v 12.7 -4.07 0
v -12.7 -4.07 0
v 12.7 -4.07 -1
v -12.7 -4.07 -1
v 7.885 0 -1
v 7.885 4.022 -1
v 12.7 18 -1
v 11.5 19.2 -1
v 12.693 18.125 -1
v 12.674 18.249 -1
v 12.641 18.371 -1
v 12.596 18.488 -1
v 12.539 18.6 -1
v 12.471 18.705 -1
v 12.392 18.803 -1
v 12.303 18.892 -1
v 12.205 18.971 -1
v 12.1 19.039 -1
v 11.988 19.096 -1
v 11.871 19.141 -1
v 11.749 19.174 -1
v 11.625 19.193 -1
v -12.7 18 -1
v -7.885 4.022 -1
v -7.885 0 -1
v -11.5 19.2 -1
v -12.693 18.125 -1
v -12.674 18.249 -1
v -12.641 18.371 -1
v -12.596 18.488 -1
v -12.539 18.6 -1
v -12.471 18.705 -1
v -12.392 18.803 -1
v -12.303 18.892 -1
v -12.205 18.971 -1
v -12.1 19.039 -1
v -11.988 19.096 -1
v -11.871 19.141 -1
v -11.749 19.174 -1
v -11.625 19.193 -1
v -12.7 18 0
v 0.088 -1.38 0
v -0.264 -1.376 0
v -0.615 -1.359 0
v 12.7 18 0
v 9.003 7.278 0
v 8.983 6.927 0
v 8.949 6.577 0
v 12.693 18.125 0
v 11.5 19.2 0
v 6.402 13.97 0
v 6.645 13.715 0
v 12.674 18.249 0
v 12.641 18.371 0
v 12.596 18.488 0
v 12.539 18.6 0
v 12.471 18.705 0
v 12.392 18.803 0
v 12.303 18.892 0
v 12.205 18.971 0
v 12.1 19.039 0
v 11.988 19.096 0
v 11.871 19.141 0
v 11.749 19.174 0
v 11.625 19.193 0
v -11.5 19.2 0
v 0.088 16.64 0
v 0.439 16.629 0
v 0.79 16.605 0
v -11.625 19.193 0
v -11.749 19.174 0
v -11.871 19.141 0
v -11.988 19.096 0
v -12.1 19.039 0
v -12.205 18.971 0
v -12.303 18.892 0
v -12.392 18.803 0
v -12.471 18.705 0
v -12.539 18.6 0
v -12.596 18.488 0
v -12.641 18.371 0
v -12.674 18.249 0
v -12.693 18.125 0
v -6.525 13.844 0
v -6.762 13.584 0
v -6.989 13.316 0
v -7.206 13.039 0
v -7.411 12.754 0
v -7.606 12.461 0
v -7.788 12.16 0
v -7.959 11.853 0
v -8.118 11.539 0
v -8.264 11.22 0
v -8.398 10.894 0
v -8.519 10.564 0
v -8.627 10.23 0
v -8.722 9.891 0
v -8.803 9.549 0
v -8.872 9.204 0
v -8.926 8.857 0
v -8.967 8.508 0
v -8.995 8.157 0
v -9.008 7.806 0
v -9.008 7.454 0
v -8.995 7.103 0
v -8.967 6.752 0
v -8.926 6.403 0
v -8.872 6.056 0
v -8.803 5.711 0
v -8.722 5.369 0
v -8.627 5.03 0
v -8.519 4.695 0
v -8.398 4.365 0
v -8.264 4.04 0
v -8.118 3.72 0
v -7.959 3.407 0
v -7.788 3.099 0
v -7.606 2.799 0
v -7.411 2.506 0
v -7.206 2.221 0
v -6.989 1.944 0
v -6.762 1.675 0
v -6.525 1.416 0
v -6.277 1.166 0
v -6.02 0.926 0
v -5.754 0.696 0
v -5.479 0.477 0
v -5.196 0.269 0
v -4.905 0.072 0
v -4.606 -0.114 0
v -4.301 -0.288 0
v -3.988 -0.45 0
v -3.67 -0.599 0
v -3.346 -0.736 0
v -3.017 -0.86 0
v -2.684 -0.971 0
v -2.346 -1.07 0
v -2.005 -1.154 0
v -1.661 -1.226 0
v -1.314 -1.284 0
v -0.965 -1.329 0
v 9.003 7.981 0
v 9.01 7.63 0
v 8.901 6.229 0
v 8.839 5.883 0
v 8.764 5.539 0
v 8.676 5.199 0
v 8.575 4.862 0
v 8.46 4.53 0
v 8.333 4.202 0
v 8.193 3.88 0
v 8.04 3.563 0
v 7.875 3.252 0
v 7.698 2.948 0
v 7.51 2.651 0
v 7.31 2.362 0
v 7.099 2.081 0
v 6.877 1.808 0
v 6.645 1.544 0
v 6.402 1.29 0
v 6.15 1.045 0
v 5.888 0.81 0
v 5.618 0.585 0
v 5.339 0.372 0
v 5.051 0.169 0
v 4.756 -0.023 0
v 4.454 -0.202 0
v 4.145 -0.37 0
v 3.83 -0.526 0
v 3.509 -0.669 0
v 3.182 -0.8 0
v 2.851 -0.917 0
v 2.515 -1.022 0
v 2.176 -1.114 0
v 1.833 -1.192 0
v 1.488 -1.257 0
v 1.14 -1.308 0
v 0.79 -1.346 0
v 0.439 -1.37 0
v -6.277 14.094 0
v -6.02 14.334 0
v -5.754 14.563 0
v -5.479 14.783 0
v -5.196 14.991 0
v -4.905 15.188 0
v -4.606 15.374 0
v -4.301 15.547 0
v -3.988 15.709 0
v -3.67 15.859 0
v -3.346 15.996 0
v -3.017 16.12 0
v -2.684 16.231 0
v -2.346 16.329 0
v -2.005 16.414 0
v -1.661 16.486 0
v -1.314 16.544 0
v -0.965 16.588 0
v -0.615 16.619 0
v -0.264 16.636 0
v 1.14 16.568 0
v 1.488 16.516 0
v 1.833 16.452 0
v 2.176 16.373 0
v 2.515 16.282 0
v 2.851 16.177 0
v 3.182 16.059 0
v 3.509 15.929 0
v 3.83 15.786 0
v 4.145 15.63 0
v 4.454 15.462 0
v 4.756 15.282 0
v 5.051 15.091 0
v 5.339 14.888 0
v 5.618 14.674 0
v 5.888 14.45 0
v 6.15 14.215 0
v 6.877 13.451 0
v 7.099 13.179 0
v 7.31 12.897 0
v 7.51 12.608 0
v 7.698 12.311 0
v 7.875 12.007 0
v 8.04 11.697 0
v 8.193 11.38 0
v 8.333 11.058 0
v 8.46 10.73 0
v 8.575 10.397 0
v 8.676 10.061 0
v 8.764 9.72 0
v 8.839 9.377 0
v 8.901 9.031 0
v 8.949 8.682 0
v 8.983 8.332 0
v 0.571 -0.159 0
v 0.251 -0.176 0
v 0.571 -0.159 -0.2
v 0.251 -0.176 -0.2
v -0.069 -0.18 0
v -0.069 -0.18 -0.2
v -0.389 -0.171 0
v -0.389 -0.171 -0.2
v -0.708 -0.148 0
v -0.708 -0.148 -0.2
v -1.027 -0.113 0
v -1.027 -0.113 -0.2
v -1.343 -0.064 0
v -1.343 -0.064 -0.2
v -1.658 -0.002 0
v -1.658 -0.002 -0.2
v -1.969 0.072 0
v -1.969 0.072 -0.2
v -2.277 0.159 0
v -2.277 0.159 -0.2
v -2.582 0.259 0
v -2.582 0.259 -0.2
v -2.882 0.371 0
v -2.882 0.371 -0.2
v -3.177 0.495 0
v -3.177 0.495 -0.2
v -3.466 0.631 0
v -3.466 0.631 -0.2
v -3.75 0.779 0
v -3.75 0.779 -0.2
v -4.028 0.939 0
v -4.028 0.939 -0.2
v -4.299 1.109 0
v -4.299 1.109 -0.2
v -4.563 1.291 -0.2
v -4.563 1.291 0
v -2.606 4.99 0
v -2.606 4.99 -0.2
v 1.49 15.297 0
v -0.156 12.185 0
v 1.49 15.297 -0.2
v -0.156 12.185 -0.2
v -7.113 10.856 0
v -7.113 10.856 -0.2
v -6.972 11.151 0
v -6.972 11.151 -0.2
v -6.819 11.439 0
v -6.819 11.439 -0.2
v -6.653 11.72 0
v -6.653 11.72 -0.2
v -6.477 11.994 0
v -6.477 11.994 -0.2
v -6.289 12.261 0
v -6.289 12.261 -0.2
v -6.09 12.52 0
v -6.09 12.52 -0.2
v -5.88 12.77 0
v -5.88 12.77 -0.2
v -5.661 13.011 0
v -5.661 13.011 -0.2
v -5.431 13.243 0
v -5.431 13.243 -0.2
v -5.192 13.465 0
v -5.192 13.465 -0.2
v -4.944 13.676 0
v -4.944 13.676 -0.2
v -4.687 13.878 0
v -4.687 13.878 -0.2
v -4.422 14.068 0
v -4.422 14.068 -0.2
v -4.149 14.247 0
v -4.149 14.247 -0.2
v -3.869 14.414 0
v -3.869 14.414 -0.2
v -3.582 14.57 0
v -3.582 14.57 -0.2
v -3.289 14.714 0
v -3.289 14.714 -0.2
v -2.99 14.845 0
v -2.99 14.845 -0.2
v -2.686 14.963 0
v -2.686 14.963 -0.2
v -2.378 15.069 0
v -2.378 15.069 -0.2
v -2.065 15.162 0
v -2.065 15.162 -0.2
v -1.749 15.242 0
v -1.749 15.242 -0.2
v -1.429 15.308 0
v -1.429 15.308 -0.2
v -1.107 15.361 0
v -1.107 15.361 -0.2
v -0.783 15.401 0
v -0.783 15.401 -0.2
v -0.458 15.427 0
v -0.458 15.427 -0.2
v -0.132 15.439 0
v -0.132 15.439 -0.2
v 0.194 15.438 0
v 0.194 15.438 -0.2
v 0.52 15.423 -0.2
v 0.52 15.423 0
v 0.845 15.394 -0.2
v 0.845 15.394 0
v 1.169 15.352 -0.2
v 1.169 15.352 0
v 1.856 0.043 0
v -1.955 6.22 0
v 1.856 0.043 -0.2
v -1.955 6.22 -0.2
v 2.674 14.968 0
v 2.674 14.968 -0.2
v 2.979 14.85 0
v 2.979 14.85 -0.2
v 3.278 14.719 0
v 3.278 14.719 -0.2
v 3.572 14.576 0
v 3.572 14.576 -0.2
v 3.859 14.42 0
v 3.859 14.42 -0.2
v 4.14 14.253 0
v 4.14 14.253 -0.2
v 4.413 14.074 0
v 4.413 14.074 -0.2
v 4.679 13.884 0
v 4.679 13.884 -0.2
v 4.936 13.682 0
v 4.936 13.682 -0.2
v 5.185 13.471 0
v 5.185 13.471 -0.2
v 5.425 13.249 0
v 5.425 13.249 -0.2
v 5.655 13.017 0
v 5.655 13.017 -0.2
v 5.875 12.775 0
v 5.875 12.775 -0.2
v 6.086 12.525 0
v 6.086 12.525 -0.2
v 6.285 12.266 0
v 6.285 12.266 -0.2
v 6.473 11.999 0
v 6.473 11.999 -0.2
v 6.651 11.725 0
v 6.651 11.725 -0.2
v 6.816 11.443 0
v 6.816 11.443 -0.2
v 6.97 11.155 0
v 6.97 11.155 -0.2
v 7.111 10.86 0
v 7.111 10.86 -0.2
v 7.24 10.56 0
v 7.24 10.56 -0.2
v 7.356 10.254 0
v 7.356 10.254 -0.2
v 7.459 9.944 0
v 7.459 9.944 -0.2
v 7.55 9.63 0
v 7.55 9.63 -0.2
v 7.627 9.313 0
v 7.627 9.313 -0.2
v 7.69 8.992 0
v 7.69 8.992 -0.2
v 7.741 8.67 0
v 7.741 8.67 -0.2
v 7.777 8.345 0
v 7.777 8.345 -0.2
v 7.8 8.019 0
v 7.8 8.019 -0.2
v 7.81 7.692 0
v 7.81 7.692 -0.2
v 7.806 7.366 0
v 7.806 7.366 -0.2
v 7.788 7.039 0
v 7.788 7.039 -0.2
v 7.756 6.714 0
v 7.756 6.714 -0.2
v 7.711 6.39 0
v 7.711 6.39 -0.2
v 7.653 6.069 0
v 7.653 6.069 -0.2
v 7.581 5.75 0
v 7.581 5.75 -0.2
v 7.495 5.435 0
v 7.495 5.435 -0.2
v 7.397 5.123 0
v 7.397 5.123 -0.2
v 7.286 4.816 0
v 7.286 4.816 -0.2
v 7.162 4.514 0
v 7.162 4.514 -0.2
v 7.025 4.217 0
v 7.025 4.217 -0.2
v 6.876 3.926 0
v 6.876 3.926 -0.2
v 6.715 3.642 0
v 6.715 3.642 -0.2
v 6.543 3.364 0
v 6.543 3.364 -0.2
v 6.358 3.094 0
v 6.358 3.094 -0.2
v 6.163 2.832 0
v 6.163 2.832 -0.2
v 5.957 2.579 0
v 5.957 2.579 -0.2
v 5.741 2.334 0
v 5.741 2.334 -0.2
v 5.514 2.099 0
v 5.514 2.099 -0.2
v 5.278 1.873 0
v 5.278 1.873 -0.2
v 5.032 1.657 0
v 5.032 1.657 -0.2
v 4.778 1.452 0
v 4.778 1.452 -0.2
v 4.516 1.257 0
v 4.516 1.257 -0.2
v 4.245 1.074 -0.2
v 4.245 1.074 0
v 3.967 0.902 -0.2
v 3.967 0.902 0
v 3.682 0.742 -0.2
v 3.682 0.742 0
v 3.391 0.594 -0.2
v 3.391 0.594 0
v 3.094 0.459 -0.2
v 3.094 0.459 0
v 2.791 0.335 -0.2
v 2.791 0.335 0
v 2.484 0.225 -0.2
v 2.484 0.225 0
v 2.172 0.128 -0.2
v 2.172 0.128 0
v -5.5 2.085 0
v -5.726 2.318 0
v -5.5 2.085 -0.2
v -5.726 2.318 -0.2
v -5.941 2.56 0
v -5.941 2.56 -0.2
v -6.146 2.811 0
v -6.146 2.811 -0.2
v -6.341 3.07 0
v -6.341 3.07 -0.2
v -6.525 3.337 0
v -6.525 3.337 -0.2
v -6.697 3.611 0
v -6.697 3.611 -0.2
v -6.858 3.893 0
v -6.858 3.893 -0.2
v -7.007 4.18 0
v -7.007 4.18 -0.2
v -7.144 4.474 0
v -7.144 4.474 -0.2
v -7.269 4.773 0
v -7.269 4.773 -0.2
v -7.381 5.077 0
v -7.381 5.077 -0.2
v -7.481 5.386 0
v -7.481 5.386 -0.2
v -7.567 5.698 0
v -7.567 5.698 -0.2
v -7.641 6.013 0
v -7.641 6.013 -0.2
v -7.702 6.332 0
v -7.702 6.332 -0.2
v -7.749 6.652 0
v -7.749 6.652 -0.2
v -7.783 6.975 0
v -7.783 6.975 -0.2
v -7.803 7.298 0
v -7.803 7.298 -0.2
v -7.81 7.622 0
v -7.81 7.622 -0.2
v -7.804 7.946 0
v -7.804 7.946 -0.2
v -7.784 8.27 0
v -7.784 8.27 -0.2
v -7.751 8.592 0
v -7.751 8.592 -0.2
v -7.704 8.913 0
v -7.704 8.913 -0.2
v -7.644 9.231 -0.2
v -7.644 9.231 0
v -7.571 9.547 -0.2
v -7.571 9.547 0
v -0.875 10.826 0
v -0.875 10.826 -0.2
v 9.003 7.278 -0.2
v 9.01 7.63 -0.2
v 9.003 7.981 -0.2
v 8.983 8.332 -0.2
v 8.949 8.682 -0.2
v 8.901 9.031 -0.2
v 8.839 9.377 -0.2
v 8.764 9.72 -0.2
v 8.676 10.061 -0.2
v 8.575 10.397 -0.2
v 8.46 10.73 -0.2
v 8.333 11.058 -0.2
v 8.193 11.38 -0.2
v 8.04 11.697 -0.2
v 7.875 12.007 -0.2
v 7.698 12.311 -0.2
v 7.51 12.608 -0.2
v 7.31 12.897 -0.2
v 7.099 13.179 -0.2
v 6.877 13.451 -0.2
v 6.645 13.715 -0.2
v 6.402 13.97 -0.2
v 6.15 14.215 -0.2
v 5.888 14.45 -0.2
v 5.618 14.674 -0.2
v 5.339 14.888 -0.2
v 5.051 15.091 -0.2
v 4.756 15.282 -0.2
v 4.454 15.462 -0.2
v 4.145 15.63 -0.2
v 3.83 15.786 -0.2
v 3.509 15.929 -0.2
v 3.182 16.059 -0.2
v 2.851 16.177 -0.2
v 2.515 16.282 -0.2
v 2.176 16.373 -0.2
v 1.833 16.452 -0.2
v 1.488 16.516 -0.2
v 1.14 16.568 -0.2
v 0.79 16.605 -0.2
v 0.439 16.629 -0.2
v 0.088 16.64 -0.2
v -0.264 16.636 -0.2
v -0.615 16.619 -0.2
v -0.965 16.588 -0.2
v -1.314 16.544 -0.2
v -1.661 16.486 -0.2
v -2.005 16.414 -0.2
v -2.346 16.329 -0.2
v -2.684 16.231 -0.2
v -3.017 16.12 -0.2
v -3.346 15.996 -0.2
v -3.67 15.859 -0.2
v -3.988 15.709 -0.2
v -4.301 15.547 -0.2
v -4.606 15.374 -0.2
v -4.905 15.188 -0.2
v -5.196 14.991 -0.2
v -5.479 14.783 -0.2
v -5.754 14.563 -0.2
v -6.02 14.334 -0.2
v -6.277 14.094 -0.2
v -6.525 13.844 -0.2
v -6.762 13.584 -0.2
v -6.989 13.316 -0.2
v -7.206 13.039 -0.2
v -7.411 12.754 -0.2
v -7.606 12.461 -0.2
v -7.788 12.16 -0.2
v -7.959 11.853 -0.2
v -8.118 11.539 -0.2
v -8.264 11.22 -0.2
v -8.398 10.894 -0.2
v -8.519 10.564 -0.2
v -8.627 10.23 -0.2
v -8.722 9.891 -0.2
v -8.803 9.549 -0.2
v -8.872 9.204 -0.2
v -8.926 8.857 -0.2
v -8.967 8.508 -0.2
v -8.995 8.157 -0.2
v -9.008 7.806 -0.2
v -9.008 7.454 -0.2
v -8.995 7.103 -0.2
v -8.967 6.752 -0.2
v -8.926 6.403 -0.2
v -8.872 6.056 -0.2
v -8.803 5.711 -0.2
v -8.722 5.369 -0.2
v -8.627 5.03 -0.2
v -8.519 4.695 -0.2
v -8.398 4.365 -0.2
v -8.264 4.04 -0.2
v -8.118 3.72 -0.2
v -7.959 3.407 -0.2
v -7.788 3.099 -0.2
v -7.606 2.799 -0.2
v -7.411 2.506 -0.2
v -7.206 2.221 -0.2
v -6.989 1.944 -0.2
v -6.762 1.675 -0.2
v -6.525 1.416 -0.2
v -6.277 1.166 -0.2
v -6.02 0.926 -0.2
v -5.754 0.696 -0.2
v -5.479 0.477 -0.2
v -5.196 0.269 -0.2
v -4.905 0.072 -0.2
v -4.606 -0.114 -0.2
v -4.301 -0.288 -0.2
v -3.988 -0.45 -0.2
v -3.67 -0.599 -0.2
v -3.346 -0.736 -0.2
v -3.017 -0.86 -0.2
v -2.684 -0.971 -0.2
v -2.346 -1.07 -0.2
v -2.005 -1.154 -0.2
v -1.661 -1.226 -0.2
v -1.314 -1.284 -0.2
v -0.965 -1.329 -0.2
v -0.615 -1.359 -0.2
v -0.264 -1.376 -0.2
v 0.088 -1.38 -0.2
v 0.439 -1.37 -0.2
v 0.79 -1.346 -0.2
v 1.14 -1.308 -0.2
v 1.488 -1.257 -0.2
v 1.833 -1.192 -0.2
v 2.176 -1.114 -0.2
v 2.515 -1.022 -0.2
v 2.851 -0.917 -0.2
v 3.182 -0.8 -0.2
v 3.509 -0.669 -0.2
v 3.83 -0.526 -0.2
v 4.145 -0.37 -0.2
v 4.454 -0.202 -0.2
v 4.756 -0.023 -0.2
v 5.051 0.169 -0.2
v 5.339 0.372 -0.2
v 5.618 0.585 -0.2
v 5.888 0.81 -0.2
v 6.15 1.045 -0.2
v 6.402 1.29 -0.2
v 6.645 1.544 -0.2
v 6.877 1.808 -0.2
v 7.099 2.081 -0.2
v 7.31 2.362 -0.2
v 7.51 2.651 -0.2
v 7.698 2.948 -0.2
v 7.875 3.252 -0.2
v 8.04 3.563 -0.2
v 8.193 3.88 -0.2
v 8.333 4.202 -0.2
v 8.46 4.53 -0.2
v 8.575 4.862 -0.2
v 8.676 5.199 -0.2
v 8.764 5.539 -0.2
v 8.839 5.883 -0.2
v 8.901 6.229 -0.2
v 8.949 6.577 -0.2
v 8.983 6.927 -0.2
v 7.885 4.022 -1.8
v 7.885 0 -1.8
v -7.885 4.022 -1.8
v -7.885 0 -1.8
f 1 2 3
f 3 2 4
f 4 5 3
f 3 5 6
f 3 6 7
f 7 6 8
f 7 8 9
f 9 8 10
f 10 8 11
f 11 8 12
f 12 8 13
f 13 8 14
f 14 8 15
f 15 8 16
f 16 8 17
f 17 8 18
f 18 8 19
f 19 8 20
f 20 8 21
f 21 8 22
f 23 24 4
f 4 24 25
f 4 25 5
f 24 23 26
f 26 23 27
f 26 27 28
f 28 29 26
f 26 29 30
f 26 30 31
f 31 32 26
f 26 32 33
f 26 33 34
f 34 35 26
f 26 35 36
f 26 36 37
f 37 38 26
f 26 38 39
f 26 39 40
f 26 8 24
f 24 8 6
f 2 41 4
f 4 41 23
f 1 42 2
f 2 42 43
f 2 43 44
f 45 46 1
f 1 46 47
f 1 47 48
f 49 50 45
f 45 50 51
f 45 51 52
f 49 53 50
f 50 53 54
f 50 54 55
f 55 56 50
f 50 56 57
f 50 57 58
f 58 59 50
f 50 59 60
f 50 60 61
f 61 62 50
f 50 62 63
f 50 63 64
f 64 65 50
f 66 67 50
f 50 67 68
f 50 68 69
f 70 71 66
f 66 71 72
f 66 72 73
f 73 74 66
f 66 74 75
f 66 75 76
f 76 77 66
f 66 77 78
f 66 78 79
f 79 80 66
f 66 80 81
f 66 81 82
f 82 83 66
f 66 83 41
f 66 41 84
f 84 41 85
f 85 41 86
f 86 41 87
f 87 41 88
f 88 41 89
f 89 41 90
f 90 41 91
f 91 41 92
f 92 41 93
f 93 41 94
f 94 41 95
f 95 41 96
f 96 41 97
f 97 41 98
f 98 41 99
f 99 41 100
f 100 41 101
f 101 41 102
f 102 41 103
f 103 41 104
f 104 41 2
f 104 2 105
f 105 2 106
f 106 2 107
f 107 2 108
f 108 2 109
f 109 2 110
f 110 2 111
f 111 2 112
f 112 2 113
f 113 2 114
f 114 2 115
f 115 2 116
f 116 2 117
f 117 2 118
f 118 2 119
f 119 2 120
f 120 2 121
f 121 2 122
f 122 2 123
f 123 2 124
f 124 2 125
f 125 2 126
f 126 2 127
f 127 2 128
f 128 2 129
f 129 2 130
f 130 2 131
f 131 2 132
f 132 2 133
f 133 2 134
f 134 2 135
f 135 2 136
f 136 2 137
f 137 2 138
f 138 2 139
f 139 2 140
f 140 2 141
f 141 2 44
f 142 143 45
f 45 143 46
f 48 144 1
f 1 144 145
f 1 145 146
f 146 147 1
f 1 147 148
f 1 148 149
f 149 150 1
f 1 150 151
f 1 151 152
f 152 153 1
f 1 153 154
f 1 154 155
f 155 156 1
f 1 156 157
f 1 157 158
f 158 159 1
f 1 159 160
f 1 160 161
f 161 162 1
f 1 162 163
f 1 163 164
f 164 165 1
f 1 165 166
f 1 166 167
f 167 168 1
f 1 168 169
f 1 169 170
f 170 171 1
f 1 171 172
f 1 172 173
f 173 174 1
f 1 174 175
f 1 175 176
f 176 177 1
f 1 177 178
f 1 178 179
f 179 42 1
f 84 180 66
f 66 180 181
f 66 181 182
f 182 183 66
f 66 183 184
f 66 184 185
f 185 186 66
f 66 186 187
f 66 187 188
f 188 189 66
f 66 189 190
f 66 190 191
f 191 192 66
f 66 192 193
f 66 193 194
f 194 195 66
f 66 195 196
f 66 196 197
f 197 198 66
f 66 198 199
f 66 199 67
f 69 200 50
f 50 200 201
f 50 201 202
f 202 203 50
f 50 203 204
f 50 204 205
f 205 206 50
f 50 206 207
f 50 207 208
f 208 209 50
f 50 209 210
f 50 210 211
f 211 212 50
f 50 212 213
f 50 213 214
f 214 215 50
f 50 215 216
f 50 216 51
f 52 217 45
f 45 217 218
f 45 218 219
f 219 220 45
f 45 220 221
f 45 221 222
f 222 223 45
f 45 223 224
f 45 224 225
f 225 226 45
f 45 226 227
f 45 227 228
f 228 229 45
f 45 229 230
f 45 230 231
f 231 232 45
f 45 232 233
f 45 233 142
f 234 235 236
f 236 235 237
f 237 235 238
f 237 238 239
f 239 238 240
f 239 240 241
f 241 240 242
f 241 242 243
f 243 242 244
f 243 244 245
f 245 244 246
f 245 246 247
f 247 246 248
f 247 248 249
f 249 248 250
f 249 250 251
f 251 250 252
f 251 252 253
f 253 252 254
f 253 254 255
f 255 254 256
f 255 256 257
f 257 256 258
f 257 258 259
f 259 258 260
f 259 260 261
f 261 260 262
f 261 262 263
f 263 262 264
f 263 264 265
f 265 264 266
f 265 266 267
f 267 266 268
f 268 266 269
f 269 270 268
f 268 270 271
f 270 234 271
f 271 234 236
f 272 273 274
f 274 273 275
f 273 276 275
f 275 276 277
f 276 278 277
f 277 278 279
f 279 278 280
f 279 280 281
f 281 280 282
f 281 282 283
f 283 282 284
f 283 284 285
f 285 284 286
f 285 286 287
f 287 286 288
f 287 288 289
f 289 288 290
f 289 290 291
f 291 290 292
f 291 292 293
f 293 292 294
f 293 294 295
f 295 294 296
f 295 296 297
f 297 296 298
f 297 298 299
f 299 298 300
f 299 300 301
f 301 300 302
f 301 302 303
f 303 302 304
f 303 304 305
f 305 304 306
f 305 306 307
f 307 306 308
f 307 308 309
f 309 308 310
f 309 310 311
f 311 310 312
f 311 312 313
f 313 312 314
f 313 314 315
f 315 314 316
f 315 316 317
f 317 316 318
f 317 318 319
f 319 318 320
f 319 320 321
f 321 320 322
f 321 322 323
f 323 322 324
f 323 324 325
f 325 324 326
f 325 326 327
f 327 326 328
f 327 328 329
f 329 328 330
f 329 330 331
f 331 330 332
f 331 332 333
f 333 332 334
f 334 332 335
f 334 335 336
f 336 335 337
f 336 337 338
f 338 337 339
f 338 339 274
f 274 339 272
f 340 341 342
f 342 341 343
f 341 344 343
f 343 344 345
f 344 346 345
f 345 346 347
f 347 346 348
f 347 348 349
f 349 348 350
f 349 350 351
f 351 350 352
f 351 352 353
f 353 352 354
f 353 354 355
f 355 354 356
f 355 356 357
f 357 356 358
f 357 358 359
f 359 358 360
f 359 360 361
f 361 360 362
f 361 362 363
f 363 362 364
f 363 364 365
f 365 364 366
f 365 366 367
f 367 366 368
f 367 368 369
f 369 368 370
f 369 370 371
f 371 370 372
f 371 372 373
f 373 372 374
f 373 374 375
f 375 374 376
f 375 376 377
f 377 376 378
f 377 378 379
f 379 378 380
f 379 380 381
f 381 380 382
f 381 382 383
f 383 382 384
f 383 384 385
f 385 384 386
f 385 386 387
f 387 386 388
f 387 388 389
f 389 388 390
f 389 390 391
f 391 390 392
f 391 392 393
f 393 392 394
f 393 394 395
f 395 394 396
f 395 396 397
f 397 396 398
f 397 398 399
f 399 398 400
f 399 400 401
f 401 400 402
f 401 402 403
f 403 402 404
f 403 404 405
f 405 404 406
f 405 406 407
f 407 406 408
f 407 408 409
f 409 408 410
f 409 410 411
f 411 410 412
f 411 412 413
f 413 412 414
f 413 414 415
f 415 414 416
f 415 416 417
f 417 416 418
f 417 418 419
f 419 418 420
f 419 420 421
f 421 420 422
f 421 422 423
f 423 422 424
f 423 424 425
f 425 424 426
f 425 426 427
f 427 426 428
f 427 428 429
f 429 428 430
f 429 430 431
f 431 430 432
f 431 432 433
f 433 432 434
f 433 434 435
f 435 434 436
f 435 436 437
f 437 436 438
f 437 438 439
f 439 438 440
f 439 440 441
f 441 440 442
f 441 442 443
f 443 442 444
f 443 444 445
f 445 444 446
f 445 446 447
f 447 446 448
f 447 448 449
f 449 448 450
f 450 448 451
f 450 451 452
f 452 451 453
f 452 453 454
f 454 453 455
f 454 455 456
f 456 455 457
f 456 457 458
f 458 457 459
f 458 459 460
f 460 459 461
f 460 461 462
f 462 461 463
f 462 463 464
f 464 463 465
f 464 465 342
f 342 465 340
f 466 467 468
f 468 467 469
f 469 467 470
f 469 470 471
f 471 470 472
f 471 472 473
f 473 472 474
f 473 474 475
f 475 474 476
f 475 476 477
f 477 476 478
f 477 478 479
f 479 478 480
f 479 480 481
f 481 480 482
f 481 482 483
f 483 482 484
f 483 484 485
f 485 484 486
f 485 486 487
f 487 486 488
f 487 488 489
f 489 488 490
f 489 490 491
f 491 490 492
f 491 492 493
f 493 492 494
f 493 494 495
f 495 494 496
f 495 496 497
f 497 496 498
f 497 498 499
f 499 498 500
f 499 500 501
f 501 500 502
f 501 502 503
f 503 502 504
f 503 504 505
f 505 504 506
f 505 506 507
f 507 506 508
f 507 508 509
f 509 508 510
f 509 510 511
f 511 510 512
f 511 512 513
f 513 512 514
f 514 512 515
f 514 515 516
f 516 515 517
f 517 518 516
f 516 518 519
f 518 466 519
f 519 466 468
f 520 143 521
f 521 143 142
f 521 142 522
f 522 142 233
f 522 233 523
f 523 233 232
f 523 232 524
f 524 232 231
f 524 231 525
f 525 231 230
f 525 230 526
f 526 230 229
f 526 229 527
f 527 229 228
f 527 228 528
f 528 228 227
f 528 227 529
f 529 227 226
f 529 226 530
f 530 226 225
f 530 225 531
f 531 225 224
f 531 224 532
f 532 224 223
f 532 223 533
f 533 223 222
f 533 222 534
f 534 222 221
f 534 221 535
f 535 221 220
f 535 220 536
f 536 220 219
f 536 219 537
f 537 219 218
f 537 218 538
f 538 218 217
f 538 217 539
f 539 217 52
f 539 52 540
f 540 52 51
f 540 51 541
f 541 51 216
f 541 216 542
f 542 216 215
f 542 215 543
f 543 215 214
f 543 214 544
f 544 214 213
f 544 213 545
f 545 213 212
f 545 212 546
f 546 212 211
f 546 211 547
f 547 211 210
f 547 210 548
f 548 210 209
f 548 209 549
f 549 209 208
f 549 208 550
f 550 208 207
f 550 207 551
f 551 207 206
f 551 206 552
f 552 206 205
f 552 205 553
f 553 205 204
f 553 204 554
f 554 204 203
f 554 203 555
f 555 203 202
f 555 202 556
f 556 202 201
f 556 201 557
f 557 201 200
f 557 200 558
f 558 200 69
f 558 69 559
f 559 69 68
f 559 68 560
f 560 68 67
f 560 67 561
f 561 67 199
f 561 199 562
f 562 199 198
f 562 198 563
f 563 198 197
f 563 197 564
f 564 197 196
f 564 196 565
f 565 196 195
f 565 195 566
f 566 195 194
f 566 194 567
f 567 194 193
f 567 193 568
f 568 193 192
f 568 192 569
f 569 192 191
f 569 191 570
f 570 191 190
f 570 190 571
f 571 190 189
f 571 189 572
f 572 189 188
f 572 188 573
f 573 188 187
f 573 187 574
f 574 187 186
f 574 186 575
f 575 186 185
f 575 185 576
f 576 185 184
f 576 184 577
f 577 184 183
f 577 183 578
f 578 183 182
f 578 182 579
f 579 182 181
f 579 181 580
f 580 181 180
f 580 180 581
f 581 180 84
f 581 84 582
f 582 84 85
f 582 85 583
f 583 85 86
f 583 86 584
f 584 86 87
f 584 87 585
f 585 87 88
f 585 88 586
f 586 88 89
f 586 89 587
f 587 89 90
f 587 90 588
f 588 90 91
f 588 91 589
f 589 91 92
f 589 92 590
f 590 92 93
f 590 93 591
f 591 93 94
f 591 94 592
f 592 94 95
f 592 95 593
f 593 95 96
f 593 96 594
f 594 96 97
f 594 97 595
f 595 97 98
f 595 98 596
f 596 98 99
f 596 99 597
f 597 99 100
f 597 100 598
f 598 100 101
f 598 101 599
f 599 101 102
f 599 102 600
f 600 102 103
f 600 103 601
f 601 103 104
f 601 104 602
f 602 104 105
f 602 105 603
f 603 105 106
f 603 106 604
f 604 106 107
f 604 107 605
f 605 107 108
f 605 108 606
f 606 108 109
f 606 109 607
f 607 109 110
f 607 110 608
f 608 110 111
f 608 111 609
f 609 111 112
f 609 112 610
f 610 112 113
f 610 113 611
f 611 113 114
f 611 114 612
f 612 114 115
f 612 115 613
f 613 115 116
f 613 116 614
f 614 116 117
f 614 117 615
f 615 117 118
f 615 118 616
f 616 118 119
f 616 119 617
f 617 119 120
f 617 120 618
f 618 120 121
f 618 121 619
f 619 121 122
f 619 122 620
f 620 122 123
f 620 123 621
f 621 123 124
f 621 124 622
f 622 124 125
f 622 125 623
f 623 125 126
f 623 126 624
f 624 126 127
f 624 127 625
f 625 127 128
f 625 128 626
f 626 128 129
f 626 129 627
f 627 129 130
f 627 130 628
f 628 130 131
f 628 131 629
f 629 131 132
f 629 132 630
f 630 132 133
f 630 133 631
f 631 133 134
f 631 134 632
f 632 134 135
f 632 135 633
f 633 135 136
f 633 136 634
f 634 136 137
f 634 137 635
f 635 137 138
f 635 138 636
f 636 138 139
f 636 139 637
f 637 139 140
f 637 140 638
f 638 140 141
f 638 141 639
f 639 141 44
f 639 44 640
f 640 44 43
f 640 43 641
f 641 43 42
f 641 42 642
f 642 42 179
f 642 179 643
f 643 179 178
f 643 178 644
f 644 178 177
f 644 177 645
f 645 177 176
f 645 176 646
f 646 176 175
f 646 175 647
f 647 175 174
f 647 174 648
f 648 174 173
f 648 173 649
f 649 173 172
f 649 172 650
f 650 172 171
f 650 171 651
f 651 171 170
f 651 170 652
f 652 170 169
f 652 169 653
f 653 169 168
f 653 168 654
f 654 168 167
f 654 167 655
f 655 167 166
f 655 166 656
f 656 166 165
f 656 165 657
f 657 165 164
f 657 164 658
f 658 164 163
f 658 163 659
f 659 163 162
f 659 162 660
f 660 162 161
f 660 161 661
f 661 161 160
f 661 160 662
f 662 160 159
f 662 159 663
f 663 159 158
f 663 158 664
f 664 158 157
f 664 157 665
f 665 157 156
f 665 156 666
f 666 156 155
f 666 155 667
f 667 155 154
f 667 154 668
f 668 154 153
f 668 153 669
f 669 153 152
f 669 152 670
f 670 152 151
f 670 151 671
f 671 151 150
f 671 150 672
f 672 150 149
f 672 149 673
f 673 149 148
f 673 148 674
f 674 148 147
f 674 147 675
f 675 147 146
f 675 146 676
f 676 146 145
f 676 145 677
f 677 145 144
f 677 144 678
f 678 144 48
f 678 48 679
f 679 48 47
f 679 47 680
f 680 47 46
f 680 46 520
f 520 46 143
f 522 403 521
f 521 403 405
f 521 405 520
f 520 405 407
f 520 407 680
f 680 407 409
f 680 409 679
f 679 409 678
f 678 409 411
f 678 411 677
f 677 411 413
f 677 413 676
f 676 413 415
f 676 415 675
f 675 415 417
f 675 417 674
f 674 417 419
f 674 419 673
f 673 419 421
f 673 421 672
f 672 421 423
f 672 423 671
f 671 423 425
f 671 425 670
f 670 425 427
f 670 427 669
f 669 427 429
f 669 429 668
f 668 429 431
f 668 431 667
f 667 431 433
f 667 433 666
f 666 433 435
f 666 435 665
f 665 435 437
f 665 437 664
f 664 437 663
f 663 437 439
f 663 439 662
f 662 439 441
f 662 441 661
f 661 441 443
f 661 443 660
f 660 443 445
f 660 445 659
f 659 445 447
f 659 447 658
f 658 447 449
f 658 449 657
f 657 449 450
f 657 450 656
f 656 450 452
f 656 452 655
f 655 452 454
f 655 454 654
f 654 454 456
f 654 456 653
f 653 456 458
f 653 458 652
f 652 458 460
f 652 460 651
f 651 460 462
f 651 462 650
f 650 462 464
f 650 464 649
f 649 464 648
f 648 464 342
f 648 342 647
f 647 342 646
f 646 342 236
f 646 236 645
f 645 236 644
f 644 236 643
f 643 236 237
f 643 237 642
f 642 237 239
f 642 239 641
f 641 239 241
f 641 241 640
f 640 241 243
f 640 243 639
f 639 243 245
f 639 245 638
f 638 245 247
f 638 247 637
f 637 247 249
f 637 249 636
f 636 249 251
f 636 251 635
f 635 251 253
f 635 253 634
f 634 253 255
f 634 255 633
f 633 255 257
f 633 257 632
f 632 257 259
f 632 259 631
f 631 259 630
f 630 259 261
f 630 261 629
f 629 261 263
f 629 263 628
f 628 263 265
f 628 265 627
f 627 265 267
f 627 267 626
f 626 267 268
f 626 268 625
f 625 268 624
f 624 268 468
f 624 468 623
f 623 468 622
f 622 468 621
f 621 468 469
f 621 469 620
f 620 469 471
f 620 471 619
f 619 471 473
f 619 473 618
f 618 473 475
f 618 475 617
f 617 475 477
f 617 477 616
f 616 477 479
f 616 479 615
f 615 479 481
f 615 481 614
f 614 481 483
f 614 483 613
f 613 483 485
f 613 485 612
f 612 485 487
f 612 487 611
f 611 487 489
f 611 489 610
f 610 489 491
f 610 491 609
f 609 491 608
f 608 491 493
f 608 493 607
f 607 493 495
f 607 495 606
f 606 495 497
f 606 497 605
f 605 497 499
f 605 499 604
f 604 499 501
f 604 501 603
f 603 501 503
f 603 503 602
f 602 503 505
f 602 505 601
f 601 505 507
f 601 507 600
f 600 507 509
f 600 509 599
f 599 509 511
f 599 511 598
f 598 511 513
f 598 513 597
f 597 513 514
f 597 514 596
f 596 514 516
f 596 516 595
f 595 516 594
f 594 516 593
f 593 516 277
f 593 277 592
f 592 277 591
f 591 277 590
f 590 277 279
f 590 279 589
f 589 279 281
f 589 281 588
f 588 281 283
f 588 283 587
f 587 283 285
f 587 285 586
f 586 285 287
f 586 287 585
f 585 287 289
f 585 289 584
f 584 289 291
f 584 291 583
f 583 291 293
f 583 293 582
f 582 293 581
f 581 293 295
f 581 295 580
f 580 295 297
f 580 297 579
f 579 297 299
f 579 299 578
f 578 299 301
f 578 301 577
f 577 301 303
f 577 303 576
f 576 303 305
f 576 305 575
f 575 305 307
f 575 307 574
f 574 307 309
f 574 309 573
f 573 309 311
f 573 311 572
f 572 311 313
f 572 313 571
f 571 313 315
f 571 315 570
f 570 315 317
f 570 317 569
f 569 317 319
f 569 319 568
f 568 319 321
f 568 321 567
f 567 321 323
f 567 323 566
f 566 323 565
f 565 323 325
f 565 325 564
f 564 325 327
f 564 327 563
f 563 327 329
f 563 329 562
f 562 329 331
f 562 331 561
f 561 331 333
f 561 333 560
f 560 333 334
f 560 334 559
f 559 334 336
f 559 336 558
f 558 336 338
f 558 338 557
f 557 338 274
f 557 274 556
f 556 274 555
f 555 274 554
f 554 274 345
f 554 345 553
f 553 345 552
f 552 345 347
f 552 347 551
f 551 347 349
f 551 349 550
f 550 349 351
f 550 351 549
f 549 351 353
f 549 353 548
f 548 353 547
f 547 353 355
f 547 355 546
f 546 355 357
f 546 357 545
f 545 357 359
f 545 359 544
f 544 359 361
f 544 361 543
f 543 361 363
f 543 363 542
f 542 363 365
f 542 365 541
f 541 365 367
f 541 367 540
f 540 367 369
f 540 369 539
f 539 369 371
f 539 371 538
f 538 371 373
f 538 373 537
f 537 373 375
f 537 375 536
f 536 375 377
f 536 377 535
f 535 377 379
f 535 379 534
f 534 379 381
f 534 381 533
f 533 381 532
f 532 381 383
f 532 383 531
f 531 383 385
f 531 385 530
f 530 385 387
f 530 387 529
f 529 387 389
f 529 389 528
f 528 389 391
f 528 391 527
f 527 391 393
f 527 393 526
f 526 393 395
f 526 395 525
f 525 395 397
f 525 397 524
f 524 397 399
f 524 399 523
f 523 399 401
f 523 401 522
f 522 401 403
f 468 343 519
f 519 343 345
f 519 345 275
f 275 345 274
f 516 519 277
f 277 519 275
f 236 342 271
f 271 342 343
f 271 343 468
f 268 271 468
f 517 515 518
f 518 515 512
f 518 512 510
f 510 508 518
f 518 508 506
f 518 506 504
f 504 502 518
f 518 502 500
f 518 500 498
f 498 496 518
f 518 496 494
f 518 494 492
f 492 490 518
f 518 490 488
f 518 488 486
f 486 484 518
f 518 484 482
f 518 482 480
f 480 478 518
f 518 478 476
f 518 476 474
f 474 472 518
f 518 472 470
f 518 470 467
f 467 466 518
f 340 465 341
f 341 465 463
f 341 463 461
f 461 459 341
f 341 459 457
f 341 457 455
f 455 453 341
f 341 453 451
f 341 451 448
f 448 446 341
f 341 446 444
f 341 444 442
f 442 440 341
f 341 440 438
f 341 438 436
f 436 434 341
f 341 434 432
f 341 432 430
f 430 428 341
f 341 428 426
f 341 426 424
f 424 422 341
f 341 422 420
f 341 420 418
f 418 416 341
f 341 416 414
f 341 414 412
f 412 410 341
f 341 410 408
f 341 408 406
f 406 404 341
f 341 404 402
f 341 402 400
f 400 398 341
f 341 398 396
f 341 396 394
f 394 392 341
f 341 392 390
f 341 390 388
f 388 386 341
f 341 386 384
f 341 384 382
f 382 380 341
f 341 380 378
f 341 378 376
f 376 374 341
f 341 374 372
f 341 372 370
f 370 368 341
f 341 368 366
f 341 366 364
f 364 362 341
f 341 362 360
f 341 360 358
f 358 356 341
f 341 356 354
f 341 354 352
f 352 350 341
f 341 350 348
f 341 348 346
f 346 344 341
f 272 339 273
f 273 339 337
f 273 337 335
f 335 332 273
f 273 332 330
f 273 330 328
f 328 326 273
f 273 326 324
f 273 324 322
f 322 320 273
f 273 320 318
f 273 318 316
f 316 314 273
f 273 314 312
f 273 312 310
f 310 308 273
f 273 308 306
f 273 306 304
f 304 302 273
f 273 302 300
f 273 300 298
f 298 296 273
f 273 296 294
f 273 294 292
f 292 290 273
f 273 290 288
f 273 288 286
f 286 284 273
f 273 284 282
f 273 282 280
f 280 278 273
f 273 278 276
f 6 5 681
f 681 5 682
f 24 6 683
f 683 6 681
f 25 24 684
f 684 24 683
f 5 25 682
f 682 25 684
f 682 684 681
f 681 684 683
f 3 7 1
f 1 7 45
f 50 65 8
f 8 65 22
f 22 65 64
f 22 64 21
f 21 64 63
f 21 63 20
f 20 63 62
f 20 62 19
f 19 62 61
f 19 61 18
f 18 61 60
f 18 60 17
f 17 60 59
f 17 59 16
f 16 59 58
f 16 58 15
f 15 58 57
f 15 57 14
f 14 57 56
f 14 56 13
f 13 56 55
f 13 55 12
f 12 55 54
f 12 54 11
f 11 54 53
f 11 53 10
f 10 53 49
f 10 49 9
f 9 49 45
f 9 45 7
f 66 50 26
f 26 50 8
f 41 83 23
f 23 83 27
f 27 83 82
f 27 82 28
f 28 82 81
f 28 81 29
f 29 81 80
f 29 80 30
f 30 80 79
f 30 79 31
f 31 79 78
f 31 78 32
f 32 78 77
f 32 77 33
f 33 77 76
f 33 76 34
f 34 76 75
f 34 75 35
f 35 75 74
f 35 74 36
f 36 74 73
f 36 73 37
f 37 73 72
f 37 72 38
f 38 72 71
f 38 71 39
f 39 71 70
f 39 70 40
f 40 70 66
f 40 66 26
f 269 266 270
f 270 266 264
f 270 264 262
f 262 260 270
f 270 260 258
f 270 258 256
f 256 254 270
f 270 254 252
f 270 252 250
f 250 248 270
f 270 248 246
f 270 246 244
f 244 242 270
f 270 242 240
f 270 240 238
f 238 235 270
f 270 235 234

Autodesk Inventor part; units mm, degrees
ref_plane "YZ Plane" through (0, 0, 0) normal (1, 0, 0) x (0, 1, 0)
ref_plane "XZ Plane" through (0, 0, 0) normal (0, 1, 0) x (-1, 0, 0)
ref_plane "XY Plane" through (0, 0, 0) normal (0, 0, 1) x (1, 0, 0)
sketch "Sketch1" plane through (0, 0, 0) normal (0, 0, 1) x (1, 0, 0)
  line L0 (11.5, 20) -> (-11.5, 20) projected
  arc A0 (-11.5, 20) -> (-13.5, 18) centre (-11.5, 18) ccw projected
  line L1 (-13.5, 18) -> (-13.5, -18) projected
  arc A1 (-13.5, -18) -> (-11.5, -20) centre (-11.5, -18) ccw projected
  line L2 (-11.5, -20) -> (11.5, -20) projected
  arc A2 (11.5, -20) -> (13.5, -18) centre (11.5, -18) ccw projected
  line L3 (13.5, -18) -> (13.5, 18) projected
  arc A3 (13.5, 18) -> (11.5, 20) centre (11.5, 18) ccw projected
  arc A4 (-12.7, -18) -> (-11.5, -19.2) centre (-11.5, -18) ccw projected
  line L4 (-12.7, -18) -> (-12.7, 18) projected
  arc A5 (-11.5, 19.2) -> (-12.7, 18) centre (-11.5, 18) ccw projected
  line L5 (-11.5, 19.2) -> (11.5, 19.2) projected
  arc A6 (12.7, 18) -> (11.5, 19.2) centre (11.5, 18) ccw projected
  line L6 (12.7, 18) -> (12.7, -18) projected
  arc A7 (11.5, -19.2) -> (12.7, -18) centre (11.5, -18) ccw projected
  line L7 (11.5, -19.2) -> (-11.5, -19.2) projected
  point P0 (0, 0)
extrude "Extrusion1" add sketch "Sketch1" against normal blind 1 contours L4 A5 L5 A6 L6 A7 L7 A4
sketch "Sketch2" plane through (0, 0, -1) normal (0, 0, -1) x (-1, 0, 0)
  line L0 (-7.8847, 4.0217) -> (7.8847, 4.0217)
  line L1 (7.8847, 4.0217) -> (7.8847, 0)
  line L2 (7.8847, 0) -> (-7.8847, 0)
  line L3 (-7.8847, 0) -> (-7.8847, 4.0217)
  line L4 (-7.8847, 4.0217) -> (7.8847, 0) construction
  line L5 (7.8847, 4.0217) -> (-7.8847, 0) construction
  point P0 (0, 0)
  point P1 (0, 2.0108)
extrude "Extrusion2" add sketch "Sketch2" along normal blind 0.8
sketch "Sketch3" plane through (0, 0, 0) normal (0, 0, 1) x (1, 0, 0)
  circle A0 centre (0, 7.6298) radius 9.0102
  line L0 (-1.9548, 6.22) -> (1.856, 0.0434)
  line L1 (-2.6057, 4.9897) -> (0.5711, -0.1594)
  line L2 (-0.156, 12.1852) -> (-7.1126, 10.8563)
  line L3 (-0.8751, 10.8262) -> (-7.5712, 9.547)
  line L4 (1.4903, 15.2965) -> (-0.156, 12.1852)
  line L5 (-0.8751, 10.8262) -> (-5.5003, 2.085)
  arc A1 (1.4903, 15.2965) -> (-7.1126, 10.8563) centre (0, 7.6298) ccw
  line L6 (2.674, 14.968) -> (-1.9548, 6.22)
  line L7 (-2.6057, 4.9897) -> (-4.5628, 1.2911)
  arc A2 (1.856, 0.0434) -> (2.674, 14.968) centre (0, 7.6298) ccw
  arc A3 (-7.5712, 9.547) -> (-5.5003, 2.085) centre (0, 7.6298) ccw
  arc A4 (-4.5628, 1.2911) -> (0.5711, -0.1594) centre (0, 7.6298) ccw
  dimension "d16" = 1.2
  dimension "d17" = 1.2
extrude "Extrusion3" cut sketch "Sketch3" against normal blind 0.2
sketch "Sketch4" plane through (0, 0, 0) normal (0, 0, 1) x (1, 0, 0)
  line L0 (-8.3854, -4.5453) -> (2.4185, -4.5453) construction
  line L1 (2.4185, -4.5453) -> (2.4185, -8.8273) construction
  line L2 (2.4185, -8.8273) -> (-8.3854, -8.8273) construction
  line L3 (-8.3854, -8.8273) -> (-8.3854, -4.5453) construction
  line L4 (-7.9406, -12.5453) -> (-7.9406, -4.5453)
  line L5 (-7.9406, -4.5453) -> (-4.8392, -4.5453)
  spline S0 degree 2 poles (-4.8392, -4.5453) (-3.7754, -4.5453) (-2.6754, -5.4649) (-2.5071, -6.4927) knots 0 0 0 1 2 2 2
  spline S1 degree 2 poles (-2.5071, -6.4927) (-2.4651, -6.8233) (-2.453, -7.0096) (-2.453, -7.1358) knots 0 0 0 1 2 2 2
  spline S2 degree 2 poles (-2.453, -7.1358) (-2.453, -8.2478) (-3.8174, -9.4799) (-5.0496, -9.4799) knots 0 0 0 1 2 2 2
  line L6 (-5.0496, -9.4799) -> (-5.8189, -9.4799)
  line L7 (-5.8189, -9.4799) -> (-5.8189, -12.5453)
  line L8 (-5.8189, -12.5453) -> (-7.9406, -12.5453)
  spline S3 degree 2 poles (-5.3561, -7.9713) (-5.1458, -7.9713) (-4.713, -7.6347) (-4.6469, -7.3041) knots 0 0 0 1 2 2 2
  spline S4 degree 2 poles (-4.6469, -7.3041) (-4.6108, -7.1358) (-4.6108, -6.9916) knots 0 0 0 1 1 1
  spline S5 degree 2 poles (-4.6108, -6.9916) (-4.6108, -6.5648) (-5.0195, -6.066) (-5.3321, -6.066) knots 0 0 0 1 2 2 2
  line L9 (-5.3321, -6.066) -> (-5.8189, -6.066)
  line L10 (-5.8189, -6.066) -> (-5.8189, -7.9713)
  line L11 (-5.8189, -7.9713) -> (-5.3561, -7.9713)
  line L12 (-2.0203, -12.5453) -> (-2.0203, -4.5453)
  line L13 (-2.0203, -4.5453) -> (2.686, -4.5453)
  line L14 (2.686, -4.5453) -> (2.686, -6.2222)
  line L15 (2.686, -6.2222) -> (0.1014, -6.2222)
  line L16 (0.1014, -6.2222) -> (0.1014, -7.6708)
  line L17 (0.1014, -7.6708) -> (2.5357, -7.6708)
  line L18 (2.5357, -7.6708) -> (2.5357, -9.2696)
  line L19 (2.5357, -9.2696) -> (0.1014, -9.2696)
  line L20 (0.1014, -9.2696) -> (0.1014, -10.8684)
  line L21 (0.1014, -10.8684) -> (2.7761, -10.8684)
  line L22 (2.7761, -10.8684) -> (2.7761, -12.5453)
  line L23 (2.7761, -12.5453) -> (-2.0203, -12.5453)
  line L24 (3.4252, -12.5453) -> (3.4252, -4.5453)
  line L25 (3.4252, -4.5453) -> (6.5267, -4.5453)
  spline S6 degree 2 poles (6.5267, -4.5453) (7.5905, -4.5453) (8.6905, -5.4649) (8.8588, -6.4927) knots 0 0 0 1 2 2 2
  spline S7 degree 2 poles (8.8588, -6.4927) (8.9008, -6.8233) (8.9129, -7.0096) (8.9129, -7.1358) knots 0 0 0 1 2 2 2
  spline S8 degree 2 poles (8.9129, -7.1358) (8.9129, -8.2478) (7.5485, -9.4799) (6.3163, -9.4799) knots 0 0 0 1 2 2 2
  line L26 (6.3163, -9.4799) -> (5.547, -9.4799)
  line L27 (5.547, -9.4799) -> (5.547, -12.5453)
  line L28 (5.547, -12.5453) -> (3.4252, -12.5453)
  spline S9 degree 2 poles (6.0098, -7.9713) (6.2201, -7.9713) (6.6529, -7.6347) (6.719, -7.3041) knots 0 0 0 1 2 2 2
  spline S10 degree 2 poles (6.719, -7.3041) (6.7551, -7.1358) (6.7551, -6.9916) knots 0 0 0 1 1 1
  spline S11 degree 2 poles (6.7551, -6.9916) (6.7551, -6.5648) (6.3464, -6.066) (6.0338, -6.066) knots 0 0 0 1 2 2 2
  line L29 (6.0338, -6.066) -> (5.547, -6.066)
  line L30 (5.547, -6.066) -> (5.547, -7.9713)
  line L31 (5.547, -7.9713) -> (6.0098, -7.9713)
  point P0 (0, 0)
extrude "Extrusion4" cut sketch "Sketch4" against normal blind 0.2
sketch "Sketch5" plane through (0, 0, 0) normal (0, 0, 1) x (1, 0, 0)
  line L0 (12.7, -4.0701) -> (14.5, -4.0701)
  line L1 (14.5, -4.0701) -> (-14.9684, -4.0701)
  line L2 (-14.9684, -4.0701) -> (-14.9684, -23.3701)
  line L3 (-14.9684, -23.3701) -> (14.5, -23.3701)
  line L4 (14.5, -23.3701) -> (14.5, -4.0701)
  point P0 (0, 0)
extrude "Extrusion5" cut sketch "Sketch5" against normal blind 10
properties part number "LimitSwitch Con Lid"
